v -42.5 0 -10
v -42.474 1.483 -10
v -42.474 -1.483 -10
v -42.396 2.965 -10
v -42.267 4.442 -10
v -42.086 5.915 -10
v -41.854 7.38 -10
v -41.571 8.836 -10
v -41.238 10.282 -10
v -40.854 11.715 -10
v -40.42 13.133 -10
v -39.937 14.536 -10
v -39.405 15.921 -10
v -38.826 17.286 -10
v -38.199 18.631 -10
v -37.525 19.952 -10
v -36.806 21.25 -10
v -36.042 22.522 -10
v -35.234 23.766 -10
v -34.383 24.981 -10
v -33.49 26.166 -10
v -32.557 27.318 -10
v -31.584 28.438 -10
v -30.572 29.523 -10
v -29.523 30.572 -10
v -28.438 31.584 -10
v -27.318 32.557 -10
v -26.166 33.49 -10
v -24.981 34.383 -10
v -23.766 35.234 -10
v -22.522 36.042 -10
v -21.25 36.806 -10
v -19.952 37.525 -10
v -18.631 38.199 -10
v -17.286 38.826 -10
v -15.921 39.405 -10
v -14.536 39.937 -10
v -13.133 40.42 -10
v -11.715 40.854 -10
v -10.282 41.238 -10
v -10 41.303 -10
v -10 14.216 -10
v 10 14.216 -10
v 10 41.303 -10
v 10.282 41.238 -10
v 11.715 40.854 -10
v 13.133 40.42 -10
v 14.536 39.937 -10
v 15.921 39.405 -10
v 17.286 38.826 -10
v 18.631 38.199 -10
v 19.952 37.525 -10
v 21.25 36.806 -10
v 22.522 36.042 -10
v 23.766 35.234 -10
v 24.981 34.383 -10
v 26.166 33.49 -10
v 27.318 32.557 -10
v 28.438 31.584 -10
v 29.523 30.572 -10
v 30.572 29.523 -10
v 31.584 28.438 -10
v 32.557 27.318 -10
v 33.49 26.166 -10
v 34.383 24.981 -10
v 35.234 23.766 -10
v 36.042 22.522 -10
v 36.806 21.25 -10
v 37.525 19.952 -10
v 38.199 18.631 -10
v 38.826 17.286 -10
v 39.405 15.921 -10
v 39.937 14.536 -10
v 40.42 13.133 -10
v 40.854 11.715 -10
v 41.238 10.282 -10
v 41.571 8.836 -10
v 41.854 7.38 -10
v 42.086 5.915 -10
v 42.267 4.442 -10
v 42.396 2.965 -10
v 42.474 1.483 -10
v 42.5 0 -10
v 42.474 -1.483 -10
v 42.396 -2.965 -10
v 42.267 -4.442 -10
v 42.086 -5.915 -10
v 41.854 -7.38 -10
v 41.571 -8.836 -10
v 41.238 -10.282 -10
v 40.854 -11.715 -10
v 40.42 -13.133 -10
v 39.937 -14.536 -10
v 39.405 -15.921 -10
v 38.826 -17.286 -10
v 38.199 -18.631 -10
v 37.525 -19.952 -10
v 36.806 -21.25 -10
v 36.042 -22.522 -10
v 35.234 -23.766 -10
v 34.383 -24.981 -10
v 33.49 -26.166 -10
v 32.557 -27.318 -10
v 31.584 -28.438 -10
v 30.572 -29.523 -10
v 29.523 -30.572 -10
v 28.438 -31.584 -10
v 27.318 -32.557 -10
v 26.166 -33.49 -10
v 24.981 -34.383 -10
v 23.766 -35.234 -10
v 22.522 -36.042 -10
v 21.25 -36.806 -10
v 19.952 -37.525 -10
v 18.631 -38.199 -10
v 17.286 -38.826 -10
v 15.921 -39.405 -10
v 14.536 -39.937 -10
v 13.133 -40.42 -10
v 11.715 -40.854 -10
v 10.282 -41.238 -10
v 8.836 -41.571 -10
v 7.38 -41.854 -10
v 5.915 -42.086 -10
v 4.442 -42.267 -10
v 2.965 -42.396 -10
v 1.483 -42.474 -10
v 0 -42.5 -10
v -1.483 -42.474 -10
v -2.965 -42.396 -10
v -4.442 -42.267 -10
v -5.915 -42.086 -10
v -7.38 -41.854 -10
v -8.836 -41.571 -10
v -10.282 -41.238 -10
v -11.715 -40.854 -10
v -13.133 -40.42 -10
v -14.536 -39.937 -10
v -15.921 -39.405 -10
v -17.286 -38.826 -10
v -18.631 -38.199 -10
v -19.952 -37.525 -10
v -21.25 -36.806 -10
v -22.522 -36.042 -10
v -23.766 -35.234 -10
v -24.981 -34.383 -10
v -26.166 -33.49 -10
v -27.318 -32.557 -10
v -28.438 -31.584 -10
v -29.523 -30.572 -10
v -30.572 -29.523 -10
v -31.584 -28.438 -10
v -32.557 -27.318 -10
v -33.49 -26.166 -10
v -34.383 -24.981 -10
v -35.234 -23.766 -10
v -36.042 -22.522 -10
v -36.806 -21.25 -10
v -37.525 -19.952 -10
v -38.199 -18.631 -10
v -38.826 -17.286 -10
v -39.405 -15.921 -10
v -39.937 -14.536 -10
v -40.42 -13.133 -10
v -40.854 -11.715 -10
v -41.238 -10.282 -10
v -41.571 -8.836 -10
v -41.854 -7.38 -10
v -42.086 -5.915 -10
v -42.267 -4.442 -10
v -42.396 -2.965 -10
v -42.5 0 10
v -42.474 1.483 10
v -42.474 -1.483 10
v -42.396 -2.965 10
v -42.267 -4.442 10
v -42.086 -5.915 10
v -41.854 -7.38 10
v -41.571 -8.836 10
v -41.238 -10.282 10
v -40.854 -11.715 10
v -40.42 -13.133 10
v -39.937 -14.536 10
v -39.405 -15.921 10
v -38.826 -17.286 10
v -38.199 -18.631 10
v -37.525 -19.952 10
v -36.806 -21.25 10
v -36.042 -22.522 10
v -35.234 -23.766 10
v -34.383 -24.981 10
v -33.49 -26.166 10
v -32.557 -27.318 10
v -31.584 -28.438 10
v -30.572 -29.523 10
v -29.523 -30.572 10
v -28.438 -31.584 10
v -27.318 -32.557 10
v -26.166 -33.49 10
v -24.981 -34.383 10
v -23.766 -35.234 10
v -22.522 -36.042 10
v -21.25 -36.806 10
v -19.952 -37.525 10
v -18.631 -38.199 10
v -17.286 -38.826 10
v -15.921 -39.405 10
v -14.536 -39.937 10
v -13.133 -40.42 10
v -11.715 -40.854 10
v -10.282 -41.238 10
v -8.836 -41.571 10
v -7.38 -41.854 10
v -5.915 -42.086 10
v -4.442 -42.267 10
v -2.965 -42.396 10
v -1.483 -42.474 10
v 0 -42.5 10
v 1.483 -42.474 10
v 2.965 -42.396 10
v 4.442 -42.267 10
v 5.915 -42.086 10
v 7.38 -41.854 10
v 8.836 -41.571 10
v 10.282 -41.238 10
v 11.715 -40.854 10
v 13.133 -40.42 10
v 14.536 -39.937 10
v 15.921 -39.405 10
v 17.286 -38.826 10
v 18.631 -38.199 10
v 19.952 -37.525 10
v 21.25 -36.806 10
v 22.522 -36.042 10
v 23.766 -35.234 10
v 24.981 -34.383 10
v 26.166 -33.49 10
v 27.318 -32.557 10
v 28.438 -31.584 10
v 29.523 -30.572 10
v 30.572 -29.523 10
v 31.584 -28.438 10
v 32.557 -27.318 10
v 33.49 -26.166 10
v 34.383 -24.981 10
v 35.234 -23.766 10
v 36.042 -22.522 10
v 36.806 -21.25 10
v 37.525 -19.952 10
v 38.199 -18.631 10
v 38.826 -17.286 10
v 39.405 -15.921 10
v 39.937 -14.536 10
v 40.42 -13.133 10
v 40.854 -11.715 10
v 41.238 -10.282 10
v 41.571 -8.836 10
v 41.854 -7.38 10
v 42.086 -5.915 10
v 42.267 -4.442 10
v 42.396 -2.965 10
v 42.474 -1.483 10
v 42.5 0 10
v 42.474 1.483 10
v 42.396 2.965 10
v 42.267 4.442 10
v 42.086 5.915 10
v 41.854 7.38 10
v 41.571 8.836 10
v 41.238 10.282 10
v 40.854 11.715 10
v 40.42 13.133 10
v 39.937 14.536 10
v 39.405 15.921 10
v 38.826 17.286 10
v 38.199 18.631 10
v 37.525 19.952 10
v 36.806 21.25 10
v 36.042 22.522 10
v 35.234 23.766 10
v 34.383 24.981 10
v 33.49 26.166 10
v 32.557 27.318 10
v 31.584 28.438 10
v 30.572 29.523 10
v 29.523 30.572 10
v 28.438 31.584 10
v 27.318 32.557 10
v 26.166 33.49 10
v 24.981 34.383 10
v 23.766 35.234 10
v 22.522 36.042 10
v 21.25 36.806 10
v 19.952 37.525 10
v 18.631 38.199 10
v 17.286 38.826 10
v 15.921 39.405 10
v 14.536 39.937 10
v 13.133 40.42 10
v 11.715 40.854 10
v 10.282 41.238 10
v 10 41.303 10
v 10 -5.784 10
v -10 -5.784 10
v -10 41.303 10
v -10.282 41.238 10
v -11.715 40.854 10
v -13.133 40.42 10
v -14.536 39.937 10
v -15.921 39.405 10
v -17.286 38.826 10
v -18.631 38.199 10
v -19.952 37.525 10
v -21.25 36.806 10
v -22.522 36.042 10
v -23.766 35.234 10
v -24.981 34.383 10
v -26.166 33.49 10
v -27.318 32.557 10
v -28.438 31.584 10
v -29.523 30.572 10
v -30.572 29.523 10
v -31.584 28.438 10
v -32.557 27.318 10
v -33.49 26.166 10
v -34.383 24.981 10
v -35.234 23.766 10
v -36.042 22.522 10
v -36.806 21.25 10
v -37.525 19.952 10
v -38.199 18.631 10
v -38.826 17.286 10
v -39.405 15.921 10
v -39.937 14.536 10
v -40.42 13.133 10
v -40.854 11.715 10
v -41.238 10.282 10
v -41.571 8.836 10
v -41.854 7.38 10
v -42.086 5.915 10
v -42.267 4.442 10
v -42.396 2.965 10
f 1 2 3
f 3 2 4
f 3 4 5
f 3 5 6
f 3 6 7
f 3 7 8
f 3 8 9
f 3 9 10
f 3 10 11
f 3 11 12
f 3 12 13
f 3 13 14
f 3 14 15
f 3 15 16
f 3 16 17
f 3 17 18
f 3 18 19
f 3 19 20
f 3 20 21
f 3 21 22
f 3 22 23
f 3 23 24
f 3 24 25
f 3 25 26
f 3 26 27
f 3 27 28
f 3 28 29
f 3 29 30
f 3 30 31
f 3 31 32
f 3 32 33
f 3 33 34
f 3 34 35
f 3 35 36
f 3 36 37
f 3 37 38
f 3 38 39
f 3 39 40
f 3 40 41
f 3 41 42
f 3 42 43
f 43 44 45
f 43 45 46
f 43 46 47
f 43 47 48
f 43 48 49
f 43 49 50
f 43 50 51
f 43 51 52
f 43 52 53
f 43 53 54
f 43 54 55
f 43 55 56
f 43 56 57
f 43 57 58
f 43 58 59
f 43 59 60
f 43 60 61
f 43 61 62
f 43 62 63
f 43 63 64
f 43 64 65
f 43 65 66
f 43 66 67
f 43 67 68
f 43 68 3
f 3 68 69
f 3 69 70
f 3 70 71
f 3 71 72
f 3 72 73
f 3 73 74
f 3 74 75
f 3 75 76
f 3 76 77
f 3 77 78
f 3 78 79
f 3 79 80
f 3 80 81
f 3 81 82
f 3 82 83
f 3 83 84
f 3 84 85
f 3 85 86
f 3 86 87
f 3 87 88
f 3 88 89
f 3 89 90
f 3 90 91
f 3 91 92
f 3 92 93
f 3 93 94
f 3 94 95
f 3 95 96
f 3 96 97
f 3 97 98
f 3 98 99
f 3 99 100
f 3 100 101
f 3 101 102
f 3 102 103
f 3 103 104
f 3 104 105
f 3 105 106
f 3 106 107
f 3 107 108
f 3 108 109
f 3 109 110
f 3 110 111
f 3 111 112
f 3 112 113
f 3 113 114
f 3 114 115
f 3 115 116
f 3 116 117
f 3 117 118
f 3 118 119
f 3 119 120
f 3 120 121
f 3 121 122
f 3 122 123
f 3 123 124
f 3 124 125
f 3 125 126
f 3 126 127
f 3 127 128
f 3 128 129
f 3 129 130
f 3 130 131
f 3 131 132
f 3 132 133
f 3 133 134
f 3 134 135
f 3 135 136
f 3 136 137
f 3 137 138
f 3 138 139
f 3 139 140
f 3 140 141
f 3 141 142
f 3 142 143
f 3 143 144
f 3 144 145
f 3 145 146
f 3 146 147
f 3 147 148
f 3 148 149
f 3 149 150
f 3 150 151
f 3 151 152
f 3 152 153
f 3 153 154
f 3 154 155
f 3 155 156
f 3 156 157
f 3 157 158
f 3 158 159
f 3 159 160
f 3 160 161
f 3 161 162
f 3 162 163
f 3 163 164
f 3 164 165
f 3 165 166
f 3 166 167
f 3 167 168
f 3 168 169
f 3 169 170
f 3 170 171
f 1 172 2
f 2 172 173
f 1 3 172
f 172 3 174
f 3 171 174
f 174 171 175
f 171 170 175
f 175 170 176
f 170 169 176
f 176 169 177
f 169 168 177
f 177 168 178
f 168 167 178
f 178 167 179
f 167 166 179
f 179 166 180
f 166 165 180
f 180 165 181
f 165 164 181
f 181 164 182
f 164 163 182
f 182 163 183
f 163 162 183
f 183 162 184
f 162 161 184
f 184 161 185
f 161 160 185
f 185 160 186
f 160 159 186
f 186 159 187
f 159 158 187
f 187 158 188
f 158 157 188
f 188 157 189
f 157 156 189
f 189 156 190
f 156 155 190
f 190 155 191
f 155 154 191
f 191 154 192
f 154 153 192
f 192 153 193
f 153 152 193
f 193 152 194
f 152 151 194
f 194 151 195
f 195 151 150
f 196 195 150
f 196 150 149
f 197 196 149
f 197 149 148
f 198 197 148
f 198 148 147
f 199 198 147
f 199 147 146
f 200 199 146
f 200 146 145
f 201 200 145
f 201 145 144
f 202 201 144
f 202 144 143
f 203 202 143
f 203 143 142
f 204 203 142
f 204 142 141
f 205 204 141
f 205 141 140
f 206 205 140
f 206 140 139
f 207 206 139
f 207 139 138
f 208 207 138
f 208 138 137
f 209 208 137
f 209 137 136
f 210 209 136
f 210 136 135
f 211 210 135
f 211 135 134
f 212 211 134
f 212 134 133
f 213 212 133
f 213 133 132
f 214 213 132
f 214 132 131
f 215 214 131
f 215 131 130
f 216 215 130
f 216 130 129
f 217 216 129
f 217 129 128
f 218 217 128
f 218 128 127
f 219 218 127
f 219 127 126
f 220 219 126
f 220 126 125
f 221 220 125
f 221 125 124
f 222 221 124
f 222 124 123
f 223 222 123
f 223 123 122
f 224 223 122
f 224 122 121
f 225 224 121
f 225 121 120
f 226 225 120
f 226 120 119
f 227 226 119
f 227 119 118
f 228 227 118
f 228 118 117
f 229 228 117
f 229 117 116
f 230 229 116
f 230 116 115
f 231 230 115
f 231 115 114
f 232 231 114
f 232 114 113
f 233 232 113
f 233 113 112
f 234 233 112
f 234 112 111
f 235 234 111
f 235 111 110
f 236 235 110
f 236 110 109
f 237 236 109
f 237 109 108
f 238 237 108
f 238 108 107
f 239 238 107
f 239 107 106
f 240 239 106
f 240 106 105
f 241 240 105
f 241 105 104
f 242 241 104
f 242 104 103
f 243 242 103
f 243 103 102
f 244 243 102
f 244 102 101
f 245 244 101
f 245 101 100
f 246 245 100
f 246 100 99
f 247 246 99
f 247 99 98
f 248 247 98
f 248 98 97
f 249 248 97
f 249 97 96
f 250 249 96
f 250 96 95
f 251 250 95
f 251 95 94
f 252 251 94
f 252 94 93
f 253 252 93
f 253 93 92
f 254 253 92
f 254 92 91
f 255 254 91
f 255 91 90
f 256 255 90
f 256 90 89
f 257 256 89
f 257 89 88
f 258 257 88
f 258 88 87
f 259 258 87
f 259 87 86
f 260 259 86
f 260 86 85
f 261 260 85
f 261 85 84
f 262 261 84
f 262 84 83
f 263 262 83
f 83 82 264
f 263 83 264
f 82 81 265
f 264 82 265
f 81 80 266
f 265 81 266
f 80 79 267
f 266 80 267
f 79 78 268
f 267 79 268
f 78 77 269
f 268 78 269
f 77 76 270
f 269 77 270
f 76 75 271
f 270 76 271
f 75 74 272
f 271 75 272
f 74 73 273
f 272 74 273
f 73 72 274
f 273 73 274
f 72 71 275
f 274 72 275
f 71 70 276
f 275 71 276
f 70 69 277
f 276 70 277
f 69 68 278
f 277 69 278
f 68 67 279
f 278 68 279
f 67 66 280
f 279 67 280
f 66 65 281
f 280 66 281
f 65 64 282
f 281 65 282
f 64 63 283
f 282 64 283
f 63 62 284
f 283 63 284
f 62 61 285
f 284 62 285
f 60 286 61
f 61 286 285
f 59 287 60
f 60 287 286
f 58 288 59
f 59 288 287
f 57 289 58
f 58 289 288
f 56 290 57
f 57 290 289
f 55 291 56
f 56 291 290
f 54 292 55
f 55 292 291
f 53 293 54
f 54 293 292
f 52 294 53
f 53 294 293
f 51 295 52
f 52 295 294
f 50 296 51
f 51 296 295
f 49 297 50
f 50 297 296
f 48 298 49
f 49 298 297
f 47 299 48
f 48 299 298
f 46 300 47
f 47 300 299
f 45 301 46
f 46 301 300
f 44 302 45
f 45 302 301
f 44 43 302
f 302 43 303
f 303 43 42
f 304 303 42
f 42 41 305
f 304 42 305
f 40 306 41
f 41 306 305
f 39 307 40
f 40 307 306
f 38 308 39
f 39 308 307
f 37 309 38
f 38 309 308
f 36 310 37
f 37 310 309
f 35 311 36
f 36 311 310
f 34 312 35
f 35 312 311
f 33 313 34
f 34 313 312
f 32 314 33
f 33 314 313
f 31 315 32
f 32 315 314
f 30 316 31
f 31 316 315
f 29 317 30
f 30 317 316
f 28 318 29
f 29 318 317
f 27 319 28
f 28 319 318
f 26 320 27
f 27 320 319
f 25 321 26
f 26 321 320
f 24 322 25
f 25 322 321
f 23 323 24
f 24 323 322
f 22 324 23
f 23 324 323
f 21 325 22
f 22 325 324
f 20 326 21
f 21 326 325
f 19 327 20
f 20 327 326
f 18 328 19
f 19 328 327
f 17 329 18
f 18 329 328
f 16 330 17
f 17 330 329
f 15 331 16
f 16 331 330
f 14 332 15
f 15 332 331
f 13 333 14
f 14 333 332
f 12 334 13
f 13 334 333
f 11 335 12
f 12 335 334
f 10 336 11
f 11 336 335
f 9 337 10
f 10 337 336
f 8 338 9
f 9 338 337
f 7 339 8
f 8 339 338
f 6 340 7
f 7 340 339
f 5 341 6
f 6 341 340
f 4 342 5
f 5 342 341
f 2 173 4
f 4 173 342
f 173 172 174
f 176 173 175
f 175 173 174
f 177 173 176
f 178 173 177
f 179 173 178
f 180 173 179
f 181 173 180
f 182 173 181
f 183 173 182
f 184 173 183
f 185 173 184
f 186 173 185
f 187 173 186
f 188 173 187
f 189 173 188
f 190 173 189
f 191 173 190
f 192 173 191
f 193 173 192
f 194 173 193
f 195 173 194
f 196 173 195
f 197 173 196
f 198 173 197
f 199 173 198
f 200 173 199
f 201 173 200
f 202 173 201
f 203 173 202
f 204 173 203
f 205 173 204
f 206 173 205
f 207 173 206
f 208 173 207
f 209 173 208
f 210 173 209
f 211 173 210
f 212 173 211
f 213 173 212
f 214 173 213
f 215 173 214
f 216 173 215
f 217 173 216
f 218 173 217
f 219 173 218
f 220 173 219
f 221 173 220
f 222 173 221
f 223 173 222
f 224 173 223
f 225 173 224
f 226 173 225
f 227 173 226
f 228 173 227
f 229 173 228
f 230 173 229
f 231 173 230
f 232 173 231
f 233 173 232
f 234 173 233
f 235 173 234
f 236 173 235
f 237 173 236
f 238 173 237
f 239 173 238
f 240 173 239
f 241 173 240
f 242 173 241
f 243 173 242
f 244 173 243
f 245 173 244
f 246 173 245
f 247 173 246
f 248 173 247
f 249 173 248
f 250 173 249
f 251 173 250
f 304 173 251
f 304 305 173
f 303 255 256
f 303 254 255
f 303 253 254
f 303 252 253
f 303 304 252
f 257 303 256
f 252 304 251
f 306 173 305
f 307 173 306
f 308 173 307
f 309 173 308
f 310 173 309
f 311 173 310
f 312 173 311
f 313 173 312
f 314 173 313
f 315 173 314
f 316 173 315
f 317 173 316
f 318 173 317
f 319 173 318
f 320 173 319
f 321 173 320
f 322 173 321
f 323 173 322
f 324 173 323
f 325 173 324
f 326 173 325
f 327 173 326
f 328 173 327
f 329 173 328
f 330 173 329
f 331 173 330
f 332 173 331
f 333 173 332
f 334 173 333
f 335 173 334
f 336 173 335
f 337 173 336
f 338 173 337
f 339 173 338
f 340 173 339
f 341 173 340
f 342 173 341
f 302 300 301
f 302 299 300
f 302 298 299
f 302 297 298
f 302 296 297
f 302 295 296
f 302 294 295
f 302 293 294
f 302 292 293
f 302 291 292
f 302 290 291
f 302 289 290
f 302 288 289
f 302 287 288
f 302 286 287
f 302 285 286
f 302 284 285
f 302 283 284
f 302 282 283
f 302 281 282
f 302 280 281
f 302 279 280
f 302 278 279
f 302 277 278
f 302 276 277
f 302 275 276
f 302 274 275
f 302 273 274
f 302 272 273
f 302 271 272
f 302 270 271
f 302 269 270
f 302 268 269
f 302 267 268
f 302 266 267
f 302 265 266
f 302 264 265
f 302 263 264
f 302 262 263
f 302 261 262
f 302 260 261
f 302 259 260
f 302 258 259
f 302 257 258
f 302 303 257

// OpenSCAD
//Cupholder inserts (customizable)
//	My parents' couch has absurdly deep cupholders. These sit in the bottom and take up space so you don't have to reach way down in there to get your drink out.

diameter = 85;
depth = 20;

notch = 20;

difference()
{
	cylinder(h = depth, r = diameter/2, center = true, $fn = 180);

	//grabby handle
	translate([0,diameter/2-notch/2,0])
	rotate([45,0,0])
	cube([notch,notch*2,depth*10], center=true);
}
